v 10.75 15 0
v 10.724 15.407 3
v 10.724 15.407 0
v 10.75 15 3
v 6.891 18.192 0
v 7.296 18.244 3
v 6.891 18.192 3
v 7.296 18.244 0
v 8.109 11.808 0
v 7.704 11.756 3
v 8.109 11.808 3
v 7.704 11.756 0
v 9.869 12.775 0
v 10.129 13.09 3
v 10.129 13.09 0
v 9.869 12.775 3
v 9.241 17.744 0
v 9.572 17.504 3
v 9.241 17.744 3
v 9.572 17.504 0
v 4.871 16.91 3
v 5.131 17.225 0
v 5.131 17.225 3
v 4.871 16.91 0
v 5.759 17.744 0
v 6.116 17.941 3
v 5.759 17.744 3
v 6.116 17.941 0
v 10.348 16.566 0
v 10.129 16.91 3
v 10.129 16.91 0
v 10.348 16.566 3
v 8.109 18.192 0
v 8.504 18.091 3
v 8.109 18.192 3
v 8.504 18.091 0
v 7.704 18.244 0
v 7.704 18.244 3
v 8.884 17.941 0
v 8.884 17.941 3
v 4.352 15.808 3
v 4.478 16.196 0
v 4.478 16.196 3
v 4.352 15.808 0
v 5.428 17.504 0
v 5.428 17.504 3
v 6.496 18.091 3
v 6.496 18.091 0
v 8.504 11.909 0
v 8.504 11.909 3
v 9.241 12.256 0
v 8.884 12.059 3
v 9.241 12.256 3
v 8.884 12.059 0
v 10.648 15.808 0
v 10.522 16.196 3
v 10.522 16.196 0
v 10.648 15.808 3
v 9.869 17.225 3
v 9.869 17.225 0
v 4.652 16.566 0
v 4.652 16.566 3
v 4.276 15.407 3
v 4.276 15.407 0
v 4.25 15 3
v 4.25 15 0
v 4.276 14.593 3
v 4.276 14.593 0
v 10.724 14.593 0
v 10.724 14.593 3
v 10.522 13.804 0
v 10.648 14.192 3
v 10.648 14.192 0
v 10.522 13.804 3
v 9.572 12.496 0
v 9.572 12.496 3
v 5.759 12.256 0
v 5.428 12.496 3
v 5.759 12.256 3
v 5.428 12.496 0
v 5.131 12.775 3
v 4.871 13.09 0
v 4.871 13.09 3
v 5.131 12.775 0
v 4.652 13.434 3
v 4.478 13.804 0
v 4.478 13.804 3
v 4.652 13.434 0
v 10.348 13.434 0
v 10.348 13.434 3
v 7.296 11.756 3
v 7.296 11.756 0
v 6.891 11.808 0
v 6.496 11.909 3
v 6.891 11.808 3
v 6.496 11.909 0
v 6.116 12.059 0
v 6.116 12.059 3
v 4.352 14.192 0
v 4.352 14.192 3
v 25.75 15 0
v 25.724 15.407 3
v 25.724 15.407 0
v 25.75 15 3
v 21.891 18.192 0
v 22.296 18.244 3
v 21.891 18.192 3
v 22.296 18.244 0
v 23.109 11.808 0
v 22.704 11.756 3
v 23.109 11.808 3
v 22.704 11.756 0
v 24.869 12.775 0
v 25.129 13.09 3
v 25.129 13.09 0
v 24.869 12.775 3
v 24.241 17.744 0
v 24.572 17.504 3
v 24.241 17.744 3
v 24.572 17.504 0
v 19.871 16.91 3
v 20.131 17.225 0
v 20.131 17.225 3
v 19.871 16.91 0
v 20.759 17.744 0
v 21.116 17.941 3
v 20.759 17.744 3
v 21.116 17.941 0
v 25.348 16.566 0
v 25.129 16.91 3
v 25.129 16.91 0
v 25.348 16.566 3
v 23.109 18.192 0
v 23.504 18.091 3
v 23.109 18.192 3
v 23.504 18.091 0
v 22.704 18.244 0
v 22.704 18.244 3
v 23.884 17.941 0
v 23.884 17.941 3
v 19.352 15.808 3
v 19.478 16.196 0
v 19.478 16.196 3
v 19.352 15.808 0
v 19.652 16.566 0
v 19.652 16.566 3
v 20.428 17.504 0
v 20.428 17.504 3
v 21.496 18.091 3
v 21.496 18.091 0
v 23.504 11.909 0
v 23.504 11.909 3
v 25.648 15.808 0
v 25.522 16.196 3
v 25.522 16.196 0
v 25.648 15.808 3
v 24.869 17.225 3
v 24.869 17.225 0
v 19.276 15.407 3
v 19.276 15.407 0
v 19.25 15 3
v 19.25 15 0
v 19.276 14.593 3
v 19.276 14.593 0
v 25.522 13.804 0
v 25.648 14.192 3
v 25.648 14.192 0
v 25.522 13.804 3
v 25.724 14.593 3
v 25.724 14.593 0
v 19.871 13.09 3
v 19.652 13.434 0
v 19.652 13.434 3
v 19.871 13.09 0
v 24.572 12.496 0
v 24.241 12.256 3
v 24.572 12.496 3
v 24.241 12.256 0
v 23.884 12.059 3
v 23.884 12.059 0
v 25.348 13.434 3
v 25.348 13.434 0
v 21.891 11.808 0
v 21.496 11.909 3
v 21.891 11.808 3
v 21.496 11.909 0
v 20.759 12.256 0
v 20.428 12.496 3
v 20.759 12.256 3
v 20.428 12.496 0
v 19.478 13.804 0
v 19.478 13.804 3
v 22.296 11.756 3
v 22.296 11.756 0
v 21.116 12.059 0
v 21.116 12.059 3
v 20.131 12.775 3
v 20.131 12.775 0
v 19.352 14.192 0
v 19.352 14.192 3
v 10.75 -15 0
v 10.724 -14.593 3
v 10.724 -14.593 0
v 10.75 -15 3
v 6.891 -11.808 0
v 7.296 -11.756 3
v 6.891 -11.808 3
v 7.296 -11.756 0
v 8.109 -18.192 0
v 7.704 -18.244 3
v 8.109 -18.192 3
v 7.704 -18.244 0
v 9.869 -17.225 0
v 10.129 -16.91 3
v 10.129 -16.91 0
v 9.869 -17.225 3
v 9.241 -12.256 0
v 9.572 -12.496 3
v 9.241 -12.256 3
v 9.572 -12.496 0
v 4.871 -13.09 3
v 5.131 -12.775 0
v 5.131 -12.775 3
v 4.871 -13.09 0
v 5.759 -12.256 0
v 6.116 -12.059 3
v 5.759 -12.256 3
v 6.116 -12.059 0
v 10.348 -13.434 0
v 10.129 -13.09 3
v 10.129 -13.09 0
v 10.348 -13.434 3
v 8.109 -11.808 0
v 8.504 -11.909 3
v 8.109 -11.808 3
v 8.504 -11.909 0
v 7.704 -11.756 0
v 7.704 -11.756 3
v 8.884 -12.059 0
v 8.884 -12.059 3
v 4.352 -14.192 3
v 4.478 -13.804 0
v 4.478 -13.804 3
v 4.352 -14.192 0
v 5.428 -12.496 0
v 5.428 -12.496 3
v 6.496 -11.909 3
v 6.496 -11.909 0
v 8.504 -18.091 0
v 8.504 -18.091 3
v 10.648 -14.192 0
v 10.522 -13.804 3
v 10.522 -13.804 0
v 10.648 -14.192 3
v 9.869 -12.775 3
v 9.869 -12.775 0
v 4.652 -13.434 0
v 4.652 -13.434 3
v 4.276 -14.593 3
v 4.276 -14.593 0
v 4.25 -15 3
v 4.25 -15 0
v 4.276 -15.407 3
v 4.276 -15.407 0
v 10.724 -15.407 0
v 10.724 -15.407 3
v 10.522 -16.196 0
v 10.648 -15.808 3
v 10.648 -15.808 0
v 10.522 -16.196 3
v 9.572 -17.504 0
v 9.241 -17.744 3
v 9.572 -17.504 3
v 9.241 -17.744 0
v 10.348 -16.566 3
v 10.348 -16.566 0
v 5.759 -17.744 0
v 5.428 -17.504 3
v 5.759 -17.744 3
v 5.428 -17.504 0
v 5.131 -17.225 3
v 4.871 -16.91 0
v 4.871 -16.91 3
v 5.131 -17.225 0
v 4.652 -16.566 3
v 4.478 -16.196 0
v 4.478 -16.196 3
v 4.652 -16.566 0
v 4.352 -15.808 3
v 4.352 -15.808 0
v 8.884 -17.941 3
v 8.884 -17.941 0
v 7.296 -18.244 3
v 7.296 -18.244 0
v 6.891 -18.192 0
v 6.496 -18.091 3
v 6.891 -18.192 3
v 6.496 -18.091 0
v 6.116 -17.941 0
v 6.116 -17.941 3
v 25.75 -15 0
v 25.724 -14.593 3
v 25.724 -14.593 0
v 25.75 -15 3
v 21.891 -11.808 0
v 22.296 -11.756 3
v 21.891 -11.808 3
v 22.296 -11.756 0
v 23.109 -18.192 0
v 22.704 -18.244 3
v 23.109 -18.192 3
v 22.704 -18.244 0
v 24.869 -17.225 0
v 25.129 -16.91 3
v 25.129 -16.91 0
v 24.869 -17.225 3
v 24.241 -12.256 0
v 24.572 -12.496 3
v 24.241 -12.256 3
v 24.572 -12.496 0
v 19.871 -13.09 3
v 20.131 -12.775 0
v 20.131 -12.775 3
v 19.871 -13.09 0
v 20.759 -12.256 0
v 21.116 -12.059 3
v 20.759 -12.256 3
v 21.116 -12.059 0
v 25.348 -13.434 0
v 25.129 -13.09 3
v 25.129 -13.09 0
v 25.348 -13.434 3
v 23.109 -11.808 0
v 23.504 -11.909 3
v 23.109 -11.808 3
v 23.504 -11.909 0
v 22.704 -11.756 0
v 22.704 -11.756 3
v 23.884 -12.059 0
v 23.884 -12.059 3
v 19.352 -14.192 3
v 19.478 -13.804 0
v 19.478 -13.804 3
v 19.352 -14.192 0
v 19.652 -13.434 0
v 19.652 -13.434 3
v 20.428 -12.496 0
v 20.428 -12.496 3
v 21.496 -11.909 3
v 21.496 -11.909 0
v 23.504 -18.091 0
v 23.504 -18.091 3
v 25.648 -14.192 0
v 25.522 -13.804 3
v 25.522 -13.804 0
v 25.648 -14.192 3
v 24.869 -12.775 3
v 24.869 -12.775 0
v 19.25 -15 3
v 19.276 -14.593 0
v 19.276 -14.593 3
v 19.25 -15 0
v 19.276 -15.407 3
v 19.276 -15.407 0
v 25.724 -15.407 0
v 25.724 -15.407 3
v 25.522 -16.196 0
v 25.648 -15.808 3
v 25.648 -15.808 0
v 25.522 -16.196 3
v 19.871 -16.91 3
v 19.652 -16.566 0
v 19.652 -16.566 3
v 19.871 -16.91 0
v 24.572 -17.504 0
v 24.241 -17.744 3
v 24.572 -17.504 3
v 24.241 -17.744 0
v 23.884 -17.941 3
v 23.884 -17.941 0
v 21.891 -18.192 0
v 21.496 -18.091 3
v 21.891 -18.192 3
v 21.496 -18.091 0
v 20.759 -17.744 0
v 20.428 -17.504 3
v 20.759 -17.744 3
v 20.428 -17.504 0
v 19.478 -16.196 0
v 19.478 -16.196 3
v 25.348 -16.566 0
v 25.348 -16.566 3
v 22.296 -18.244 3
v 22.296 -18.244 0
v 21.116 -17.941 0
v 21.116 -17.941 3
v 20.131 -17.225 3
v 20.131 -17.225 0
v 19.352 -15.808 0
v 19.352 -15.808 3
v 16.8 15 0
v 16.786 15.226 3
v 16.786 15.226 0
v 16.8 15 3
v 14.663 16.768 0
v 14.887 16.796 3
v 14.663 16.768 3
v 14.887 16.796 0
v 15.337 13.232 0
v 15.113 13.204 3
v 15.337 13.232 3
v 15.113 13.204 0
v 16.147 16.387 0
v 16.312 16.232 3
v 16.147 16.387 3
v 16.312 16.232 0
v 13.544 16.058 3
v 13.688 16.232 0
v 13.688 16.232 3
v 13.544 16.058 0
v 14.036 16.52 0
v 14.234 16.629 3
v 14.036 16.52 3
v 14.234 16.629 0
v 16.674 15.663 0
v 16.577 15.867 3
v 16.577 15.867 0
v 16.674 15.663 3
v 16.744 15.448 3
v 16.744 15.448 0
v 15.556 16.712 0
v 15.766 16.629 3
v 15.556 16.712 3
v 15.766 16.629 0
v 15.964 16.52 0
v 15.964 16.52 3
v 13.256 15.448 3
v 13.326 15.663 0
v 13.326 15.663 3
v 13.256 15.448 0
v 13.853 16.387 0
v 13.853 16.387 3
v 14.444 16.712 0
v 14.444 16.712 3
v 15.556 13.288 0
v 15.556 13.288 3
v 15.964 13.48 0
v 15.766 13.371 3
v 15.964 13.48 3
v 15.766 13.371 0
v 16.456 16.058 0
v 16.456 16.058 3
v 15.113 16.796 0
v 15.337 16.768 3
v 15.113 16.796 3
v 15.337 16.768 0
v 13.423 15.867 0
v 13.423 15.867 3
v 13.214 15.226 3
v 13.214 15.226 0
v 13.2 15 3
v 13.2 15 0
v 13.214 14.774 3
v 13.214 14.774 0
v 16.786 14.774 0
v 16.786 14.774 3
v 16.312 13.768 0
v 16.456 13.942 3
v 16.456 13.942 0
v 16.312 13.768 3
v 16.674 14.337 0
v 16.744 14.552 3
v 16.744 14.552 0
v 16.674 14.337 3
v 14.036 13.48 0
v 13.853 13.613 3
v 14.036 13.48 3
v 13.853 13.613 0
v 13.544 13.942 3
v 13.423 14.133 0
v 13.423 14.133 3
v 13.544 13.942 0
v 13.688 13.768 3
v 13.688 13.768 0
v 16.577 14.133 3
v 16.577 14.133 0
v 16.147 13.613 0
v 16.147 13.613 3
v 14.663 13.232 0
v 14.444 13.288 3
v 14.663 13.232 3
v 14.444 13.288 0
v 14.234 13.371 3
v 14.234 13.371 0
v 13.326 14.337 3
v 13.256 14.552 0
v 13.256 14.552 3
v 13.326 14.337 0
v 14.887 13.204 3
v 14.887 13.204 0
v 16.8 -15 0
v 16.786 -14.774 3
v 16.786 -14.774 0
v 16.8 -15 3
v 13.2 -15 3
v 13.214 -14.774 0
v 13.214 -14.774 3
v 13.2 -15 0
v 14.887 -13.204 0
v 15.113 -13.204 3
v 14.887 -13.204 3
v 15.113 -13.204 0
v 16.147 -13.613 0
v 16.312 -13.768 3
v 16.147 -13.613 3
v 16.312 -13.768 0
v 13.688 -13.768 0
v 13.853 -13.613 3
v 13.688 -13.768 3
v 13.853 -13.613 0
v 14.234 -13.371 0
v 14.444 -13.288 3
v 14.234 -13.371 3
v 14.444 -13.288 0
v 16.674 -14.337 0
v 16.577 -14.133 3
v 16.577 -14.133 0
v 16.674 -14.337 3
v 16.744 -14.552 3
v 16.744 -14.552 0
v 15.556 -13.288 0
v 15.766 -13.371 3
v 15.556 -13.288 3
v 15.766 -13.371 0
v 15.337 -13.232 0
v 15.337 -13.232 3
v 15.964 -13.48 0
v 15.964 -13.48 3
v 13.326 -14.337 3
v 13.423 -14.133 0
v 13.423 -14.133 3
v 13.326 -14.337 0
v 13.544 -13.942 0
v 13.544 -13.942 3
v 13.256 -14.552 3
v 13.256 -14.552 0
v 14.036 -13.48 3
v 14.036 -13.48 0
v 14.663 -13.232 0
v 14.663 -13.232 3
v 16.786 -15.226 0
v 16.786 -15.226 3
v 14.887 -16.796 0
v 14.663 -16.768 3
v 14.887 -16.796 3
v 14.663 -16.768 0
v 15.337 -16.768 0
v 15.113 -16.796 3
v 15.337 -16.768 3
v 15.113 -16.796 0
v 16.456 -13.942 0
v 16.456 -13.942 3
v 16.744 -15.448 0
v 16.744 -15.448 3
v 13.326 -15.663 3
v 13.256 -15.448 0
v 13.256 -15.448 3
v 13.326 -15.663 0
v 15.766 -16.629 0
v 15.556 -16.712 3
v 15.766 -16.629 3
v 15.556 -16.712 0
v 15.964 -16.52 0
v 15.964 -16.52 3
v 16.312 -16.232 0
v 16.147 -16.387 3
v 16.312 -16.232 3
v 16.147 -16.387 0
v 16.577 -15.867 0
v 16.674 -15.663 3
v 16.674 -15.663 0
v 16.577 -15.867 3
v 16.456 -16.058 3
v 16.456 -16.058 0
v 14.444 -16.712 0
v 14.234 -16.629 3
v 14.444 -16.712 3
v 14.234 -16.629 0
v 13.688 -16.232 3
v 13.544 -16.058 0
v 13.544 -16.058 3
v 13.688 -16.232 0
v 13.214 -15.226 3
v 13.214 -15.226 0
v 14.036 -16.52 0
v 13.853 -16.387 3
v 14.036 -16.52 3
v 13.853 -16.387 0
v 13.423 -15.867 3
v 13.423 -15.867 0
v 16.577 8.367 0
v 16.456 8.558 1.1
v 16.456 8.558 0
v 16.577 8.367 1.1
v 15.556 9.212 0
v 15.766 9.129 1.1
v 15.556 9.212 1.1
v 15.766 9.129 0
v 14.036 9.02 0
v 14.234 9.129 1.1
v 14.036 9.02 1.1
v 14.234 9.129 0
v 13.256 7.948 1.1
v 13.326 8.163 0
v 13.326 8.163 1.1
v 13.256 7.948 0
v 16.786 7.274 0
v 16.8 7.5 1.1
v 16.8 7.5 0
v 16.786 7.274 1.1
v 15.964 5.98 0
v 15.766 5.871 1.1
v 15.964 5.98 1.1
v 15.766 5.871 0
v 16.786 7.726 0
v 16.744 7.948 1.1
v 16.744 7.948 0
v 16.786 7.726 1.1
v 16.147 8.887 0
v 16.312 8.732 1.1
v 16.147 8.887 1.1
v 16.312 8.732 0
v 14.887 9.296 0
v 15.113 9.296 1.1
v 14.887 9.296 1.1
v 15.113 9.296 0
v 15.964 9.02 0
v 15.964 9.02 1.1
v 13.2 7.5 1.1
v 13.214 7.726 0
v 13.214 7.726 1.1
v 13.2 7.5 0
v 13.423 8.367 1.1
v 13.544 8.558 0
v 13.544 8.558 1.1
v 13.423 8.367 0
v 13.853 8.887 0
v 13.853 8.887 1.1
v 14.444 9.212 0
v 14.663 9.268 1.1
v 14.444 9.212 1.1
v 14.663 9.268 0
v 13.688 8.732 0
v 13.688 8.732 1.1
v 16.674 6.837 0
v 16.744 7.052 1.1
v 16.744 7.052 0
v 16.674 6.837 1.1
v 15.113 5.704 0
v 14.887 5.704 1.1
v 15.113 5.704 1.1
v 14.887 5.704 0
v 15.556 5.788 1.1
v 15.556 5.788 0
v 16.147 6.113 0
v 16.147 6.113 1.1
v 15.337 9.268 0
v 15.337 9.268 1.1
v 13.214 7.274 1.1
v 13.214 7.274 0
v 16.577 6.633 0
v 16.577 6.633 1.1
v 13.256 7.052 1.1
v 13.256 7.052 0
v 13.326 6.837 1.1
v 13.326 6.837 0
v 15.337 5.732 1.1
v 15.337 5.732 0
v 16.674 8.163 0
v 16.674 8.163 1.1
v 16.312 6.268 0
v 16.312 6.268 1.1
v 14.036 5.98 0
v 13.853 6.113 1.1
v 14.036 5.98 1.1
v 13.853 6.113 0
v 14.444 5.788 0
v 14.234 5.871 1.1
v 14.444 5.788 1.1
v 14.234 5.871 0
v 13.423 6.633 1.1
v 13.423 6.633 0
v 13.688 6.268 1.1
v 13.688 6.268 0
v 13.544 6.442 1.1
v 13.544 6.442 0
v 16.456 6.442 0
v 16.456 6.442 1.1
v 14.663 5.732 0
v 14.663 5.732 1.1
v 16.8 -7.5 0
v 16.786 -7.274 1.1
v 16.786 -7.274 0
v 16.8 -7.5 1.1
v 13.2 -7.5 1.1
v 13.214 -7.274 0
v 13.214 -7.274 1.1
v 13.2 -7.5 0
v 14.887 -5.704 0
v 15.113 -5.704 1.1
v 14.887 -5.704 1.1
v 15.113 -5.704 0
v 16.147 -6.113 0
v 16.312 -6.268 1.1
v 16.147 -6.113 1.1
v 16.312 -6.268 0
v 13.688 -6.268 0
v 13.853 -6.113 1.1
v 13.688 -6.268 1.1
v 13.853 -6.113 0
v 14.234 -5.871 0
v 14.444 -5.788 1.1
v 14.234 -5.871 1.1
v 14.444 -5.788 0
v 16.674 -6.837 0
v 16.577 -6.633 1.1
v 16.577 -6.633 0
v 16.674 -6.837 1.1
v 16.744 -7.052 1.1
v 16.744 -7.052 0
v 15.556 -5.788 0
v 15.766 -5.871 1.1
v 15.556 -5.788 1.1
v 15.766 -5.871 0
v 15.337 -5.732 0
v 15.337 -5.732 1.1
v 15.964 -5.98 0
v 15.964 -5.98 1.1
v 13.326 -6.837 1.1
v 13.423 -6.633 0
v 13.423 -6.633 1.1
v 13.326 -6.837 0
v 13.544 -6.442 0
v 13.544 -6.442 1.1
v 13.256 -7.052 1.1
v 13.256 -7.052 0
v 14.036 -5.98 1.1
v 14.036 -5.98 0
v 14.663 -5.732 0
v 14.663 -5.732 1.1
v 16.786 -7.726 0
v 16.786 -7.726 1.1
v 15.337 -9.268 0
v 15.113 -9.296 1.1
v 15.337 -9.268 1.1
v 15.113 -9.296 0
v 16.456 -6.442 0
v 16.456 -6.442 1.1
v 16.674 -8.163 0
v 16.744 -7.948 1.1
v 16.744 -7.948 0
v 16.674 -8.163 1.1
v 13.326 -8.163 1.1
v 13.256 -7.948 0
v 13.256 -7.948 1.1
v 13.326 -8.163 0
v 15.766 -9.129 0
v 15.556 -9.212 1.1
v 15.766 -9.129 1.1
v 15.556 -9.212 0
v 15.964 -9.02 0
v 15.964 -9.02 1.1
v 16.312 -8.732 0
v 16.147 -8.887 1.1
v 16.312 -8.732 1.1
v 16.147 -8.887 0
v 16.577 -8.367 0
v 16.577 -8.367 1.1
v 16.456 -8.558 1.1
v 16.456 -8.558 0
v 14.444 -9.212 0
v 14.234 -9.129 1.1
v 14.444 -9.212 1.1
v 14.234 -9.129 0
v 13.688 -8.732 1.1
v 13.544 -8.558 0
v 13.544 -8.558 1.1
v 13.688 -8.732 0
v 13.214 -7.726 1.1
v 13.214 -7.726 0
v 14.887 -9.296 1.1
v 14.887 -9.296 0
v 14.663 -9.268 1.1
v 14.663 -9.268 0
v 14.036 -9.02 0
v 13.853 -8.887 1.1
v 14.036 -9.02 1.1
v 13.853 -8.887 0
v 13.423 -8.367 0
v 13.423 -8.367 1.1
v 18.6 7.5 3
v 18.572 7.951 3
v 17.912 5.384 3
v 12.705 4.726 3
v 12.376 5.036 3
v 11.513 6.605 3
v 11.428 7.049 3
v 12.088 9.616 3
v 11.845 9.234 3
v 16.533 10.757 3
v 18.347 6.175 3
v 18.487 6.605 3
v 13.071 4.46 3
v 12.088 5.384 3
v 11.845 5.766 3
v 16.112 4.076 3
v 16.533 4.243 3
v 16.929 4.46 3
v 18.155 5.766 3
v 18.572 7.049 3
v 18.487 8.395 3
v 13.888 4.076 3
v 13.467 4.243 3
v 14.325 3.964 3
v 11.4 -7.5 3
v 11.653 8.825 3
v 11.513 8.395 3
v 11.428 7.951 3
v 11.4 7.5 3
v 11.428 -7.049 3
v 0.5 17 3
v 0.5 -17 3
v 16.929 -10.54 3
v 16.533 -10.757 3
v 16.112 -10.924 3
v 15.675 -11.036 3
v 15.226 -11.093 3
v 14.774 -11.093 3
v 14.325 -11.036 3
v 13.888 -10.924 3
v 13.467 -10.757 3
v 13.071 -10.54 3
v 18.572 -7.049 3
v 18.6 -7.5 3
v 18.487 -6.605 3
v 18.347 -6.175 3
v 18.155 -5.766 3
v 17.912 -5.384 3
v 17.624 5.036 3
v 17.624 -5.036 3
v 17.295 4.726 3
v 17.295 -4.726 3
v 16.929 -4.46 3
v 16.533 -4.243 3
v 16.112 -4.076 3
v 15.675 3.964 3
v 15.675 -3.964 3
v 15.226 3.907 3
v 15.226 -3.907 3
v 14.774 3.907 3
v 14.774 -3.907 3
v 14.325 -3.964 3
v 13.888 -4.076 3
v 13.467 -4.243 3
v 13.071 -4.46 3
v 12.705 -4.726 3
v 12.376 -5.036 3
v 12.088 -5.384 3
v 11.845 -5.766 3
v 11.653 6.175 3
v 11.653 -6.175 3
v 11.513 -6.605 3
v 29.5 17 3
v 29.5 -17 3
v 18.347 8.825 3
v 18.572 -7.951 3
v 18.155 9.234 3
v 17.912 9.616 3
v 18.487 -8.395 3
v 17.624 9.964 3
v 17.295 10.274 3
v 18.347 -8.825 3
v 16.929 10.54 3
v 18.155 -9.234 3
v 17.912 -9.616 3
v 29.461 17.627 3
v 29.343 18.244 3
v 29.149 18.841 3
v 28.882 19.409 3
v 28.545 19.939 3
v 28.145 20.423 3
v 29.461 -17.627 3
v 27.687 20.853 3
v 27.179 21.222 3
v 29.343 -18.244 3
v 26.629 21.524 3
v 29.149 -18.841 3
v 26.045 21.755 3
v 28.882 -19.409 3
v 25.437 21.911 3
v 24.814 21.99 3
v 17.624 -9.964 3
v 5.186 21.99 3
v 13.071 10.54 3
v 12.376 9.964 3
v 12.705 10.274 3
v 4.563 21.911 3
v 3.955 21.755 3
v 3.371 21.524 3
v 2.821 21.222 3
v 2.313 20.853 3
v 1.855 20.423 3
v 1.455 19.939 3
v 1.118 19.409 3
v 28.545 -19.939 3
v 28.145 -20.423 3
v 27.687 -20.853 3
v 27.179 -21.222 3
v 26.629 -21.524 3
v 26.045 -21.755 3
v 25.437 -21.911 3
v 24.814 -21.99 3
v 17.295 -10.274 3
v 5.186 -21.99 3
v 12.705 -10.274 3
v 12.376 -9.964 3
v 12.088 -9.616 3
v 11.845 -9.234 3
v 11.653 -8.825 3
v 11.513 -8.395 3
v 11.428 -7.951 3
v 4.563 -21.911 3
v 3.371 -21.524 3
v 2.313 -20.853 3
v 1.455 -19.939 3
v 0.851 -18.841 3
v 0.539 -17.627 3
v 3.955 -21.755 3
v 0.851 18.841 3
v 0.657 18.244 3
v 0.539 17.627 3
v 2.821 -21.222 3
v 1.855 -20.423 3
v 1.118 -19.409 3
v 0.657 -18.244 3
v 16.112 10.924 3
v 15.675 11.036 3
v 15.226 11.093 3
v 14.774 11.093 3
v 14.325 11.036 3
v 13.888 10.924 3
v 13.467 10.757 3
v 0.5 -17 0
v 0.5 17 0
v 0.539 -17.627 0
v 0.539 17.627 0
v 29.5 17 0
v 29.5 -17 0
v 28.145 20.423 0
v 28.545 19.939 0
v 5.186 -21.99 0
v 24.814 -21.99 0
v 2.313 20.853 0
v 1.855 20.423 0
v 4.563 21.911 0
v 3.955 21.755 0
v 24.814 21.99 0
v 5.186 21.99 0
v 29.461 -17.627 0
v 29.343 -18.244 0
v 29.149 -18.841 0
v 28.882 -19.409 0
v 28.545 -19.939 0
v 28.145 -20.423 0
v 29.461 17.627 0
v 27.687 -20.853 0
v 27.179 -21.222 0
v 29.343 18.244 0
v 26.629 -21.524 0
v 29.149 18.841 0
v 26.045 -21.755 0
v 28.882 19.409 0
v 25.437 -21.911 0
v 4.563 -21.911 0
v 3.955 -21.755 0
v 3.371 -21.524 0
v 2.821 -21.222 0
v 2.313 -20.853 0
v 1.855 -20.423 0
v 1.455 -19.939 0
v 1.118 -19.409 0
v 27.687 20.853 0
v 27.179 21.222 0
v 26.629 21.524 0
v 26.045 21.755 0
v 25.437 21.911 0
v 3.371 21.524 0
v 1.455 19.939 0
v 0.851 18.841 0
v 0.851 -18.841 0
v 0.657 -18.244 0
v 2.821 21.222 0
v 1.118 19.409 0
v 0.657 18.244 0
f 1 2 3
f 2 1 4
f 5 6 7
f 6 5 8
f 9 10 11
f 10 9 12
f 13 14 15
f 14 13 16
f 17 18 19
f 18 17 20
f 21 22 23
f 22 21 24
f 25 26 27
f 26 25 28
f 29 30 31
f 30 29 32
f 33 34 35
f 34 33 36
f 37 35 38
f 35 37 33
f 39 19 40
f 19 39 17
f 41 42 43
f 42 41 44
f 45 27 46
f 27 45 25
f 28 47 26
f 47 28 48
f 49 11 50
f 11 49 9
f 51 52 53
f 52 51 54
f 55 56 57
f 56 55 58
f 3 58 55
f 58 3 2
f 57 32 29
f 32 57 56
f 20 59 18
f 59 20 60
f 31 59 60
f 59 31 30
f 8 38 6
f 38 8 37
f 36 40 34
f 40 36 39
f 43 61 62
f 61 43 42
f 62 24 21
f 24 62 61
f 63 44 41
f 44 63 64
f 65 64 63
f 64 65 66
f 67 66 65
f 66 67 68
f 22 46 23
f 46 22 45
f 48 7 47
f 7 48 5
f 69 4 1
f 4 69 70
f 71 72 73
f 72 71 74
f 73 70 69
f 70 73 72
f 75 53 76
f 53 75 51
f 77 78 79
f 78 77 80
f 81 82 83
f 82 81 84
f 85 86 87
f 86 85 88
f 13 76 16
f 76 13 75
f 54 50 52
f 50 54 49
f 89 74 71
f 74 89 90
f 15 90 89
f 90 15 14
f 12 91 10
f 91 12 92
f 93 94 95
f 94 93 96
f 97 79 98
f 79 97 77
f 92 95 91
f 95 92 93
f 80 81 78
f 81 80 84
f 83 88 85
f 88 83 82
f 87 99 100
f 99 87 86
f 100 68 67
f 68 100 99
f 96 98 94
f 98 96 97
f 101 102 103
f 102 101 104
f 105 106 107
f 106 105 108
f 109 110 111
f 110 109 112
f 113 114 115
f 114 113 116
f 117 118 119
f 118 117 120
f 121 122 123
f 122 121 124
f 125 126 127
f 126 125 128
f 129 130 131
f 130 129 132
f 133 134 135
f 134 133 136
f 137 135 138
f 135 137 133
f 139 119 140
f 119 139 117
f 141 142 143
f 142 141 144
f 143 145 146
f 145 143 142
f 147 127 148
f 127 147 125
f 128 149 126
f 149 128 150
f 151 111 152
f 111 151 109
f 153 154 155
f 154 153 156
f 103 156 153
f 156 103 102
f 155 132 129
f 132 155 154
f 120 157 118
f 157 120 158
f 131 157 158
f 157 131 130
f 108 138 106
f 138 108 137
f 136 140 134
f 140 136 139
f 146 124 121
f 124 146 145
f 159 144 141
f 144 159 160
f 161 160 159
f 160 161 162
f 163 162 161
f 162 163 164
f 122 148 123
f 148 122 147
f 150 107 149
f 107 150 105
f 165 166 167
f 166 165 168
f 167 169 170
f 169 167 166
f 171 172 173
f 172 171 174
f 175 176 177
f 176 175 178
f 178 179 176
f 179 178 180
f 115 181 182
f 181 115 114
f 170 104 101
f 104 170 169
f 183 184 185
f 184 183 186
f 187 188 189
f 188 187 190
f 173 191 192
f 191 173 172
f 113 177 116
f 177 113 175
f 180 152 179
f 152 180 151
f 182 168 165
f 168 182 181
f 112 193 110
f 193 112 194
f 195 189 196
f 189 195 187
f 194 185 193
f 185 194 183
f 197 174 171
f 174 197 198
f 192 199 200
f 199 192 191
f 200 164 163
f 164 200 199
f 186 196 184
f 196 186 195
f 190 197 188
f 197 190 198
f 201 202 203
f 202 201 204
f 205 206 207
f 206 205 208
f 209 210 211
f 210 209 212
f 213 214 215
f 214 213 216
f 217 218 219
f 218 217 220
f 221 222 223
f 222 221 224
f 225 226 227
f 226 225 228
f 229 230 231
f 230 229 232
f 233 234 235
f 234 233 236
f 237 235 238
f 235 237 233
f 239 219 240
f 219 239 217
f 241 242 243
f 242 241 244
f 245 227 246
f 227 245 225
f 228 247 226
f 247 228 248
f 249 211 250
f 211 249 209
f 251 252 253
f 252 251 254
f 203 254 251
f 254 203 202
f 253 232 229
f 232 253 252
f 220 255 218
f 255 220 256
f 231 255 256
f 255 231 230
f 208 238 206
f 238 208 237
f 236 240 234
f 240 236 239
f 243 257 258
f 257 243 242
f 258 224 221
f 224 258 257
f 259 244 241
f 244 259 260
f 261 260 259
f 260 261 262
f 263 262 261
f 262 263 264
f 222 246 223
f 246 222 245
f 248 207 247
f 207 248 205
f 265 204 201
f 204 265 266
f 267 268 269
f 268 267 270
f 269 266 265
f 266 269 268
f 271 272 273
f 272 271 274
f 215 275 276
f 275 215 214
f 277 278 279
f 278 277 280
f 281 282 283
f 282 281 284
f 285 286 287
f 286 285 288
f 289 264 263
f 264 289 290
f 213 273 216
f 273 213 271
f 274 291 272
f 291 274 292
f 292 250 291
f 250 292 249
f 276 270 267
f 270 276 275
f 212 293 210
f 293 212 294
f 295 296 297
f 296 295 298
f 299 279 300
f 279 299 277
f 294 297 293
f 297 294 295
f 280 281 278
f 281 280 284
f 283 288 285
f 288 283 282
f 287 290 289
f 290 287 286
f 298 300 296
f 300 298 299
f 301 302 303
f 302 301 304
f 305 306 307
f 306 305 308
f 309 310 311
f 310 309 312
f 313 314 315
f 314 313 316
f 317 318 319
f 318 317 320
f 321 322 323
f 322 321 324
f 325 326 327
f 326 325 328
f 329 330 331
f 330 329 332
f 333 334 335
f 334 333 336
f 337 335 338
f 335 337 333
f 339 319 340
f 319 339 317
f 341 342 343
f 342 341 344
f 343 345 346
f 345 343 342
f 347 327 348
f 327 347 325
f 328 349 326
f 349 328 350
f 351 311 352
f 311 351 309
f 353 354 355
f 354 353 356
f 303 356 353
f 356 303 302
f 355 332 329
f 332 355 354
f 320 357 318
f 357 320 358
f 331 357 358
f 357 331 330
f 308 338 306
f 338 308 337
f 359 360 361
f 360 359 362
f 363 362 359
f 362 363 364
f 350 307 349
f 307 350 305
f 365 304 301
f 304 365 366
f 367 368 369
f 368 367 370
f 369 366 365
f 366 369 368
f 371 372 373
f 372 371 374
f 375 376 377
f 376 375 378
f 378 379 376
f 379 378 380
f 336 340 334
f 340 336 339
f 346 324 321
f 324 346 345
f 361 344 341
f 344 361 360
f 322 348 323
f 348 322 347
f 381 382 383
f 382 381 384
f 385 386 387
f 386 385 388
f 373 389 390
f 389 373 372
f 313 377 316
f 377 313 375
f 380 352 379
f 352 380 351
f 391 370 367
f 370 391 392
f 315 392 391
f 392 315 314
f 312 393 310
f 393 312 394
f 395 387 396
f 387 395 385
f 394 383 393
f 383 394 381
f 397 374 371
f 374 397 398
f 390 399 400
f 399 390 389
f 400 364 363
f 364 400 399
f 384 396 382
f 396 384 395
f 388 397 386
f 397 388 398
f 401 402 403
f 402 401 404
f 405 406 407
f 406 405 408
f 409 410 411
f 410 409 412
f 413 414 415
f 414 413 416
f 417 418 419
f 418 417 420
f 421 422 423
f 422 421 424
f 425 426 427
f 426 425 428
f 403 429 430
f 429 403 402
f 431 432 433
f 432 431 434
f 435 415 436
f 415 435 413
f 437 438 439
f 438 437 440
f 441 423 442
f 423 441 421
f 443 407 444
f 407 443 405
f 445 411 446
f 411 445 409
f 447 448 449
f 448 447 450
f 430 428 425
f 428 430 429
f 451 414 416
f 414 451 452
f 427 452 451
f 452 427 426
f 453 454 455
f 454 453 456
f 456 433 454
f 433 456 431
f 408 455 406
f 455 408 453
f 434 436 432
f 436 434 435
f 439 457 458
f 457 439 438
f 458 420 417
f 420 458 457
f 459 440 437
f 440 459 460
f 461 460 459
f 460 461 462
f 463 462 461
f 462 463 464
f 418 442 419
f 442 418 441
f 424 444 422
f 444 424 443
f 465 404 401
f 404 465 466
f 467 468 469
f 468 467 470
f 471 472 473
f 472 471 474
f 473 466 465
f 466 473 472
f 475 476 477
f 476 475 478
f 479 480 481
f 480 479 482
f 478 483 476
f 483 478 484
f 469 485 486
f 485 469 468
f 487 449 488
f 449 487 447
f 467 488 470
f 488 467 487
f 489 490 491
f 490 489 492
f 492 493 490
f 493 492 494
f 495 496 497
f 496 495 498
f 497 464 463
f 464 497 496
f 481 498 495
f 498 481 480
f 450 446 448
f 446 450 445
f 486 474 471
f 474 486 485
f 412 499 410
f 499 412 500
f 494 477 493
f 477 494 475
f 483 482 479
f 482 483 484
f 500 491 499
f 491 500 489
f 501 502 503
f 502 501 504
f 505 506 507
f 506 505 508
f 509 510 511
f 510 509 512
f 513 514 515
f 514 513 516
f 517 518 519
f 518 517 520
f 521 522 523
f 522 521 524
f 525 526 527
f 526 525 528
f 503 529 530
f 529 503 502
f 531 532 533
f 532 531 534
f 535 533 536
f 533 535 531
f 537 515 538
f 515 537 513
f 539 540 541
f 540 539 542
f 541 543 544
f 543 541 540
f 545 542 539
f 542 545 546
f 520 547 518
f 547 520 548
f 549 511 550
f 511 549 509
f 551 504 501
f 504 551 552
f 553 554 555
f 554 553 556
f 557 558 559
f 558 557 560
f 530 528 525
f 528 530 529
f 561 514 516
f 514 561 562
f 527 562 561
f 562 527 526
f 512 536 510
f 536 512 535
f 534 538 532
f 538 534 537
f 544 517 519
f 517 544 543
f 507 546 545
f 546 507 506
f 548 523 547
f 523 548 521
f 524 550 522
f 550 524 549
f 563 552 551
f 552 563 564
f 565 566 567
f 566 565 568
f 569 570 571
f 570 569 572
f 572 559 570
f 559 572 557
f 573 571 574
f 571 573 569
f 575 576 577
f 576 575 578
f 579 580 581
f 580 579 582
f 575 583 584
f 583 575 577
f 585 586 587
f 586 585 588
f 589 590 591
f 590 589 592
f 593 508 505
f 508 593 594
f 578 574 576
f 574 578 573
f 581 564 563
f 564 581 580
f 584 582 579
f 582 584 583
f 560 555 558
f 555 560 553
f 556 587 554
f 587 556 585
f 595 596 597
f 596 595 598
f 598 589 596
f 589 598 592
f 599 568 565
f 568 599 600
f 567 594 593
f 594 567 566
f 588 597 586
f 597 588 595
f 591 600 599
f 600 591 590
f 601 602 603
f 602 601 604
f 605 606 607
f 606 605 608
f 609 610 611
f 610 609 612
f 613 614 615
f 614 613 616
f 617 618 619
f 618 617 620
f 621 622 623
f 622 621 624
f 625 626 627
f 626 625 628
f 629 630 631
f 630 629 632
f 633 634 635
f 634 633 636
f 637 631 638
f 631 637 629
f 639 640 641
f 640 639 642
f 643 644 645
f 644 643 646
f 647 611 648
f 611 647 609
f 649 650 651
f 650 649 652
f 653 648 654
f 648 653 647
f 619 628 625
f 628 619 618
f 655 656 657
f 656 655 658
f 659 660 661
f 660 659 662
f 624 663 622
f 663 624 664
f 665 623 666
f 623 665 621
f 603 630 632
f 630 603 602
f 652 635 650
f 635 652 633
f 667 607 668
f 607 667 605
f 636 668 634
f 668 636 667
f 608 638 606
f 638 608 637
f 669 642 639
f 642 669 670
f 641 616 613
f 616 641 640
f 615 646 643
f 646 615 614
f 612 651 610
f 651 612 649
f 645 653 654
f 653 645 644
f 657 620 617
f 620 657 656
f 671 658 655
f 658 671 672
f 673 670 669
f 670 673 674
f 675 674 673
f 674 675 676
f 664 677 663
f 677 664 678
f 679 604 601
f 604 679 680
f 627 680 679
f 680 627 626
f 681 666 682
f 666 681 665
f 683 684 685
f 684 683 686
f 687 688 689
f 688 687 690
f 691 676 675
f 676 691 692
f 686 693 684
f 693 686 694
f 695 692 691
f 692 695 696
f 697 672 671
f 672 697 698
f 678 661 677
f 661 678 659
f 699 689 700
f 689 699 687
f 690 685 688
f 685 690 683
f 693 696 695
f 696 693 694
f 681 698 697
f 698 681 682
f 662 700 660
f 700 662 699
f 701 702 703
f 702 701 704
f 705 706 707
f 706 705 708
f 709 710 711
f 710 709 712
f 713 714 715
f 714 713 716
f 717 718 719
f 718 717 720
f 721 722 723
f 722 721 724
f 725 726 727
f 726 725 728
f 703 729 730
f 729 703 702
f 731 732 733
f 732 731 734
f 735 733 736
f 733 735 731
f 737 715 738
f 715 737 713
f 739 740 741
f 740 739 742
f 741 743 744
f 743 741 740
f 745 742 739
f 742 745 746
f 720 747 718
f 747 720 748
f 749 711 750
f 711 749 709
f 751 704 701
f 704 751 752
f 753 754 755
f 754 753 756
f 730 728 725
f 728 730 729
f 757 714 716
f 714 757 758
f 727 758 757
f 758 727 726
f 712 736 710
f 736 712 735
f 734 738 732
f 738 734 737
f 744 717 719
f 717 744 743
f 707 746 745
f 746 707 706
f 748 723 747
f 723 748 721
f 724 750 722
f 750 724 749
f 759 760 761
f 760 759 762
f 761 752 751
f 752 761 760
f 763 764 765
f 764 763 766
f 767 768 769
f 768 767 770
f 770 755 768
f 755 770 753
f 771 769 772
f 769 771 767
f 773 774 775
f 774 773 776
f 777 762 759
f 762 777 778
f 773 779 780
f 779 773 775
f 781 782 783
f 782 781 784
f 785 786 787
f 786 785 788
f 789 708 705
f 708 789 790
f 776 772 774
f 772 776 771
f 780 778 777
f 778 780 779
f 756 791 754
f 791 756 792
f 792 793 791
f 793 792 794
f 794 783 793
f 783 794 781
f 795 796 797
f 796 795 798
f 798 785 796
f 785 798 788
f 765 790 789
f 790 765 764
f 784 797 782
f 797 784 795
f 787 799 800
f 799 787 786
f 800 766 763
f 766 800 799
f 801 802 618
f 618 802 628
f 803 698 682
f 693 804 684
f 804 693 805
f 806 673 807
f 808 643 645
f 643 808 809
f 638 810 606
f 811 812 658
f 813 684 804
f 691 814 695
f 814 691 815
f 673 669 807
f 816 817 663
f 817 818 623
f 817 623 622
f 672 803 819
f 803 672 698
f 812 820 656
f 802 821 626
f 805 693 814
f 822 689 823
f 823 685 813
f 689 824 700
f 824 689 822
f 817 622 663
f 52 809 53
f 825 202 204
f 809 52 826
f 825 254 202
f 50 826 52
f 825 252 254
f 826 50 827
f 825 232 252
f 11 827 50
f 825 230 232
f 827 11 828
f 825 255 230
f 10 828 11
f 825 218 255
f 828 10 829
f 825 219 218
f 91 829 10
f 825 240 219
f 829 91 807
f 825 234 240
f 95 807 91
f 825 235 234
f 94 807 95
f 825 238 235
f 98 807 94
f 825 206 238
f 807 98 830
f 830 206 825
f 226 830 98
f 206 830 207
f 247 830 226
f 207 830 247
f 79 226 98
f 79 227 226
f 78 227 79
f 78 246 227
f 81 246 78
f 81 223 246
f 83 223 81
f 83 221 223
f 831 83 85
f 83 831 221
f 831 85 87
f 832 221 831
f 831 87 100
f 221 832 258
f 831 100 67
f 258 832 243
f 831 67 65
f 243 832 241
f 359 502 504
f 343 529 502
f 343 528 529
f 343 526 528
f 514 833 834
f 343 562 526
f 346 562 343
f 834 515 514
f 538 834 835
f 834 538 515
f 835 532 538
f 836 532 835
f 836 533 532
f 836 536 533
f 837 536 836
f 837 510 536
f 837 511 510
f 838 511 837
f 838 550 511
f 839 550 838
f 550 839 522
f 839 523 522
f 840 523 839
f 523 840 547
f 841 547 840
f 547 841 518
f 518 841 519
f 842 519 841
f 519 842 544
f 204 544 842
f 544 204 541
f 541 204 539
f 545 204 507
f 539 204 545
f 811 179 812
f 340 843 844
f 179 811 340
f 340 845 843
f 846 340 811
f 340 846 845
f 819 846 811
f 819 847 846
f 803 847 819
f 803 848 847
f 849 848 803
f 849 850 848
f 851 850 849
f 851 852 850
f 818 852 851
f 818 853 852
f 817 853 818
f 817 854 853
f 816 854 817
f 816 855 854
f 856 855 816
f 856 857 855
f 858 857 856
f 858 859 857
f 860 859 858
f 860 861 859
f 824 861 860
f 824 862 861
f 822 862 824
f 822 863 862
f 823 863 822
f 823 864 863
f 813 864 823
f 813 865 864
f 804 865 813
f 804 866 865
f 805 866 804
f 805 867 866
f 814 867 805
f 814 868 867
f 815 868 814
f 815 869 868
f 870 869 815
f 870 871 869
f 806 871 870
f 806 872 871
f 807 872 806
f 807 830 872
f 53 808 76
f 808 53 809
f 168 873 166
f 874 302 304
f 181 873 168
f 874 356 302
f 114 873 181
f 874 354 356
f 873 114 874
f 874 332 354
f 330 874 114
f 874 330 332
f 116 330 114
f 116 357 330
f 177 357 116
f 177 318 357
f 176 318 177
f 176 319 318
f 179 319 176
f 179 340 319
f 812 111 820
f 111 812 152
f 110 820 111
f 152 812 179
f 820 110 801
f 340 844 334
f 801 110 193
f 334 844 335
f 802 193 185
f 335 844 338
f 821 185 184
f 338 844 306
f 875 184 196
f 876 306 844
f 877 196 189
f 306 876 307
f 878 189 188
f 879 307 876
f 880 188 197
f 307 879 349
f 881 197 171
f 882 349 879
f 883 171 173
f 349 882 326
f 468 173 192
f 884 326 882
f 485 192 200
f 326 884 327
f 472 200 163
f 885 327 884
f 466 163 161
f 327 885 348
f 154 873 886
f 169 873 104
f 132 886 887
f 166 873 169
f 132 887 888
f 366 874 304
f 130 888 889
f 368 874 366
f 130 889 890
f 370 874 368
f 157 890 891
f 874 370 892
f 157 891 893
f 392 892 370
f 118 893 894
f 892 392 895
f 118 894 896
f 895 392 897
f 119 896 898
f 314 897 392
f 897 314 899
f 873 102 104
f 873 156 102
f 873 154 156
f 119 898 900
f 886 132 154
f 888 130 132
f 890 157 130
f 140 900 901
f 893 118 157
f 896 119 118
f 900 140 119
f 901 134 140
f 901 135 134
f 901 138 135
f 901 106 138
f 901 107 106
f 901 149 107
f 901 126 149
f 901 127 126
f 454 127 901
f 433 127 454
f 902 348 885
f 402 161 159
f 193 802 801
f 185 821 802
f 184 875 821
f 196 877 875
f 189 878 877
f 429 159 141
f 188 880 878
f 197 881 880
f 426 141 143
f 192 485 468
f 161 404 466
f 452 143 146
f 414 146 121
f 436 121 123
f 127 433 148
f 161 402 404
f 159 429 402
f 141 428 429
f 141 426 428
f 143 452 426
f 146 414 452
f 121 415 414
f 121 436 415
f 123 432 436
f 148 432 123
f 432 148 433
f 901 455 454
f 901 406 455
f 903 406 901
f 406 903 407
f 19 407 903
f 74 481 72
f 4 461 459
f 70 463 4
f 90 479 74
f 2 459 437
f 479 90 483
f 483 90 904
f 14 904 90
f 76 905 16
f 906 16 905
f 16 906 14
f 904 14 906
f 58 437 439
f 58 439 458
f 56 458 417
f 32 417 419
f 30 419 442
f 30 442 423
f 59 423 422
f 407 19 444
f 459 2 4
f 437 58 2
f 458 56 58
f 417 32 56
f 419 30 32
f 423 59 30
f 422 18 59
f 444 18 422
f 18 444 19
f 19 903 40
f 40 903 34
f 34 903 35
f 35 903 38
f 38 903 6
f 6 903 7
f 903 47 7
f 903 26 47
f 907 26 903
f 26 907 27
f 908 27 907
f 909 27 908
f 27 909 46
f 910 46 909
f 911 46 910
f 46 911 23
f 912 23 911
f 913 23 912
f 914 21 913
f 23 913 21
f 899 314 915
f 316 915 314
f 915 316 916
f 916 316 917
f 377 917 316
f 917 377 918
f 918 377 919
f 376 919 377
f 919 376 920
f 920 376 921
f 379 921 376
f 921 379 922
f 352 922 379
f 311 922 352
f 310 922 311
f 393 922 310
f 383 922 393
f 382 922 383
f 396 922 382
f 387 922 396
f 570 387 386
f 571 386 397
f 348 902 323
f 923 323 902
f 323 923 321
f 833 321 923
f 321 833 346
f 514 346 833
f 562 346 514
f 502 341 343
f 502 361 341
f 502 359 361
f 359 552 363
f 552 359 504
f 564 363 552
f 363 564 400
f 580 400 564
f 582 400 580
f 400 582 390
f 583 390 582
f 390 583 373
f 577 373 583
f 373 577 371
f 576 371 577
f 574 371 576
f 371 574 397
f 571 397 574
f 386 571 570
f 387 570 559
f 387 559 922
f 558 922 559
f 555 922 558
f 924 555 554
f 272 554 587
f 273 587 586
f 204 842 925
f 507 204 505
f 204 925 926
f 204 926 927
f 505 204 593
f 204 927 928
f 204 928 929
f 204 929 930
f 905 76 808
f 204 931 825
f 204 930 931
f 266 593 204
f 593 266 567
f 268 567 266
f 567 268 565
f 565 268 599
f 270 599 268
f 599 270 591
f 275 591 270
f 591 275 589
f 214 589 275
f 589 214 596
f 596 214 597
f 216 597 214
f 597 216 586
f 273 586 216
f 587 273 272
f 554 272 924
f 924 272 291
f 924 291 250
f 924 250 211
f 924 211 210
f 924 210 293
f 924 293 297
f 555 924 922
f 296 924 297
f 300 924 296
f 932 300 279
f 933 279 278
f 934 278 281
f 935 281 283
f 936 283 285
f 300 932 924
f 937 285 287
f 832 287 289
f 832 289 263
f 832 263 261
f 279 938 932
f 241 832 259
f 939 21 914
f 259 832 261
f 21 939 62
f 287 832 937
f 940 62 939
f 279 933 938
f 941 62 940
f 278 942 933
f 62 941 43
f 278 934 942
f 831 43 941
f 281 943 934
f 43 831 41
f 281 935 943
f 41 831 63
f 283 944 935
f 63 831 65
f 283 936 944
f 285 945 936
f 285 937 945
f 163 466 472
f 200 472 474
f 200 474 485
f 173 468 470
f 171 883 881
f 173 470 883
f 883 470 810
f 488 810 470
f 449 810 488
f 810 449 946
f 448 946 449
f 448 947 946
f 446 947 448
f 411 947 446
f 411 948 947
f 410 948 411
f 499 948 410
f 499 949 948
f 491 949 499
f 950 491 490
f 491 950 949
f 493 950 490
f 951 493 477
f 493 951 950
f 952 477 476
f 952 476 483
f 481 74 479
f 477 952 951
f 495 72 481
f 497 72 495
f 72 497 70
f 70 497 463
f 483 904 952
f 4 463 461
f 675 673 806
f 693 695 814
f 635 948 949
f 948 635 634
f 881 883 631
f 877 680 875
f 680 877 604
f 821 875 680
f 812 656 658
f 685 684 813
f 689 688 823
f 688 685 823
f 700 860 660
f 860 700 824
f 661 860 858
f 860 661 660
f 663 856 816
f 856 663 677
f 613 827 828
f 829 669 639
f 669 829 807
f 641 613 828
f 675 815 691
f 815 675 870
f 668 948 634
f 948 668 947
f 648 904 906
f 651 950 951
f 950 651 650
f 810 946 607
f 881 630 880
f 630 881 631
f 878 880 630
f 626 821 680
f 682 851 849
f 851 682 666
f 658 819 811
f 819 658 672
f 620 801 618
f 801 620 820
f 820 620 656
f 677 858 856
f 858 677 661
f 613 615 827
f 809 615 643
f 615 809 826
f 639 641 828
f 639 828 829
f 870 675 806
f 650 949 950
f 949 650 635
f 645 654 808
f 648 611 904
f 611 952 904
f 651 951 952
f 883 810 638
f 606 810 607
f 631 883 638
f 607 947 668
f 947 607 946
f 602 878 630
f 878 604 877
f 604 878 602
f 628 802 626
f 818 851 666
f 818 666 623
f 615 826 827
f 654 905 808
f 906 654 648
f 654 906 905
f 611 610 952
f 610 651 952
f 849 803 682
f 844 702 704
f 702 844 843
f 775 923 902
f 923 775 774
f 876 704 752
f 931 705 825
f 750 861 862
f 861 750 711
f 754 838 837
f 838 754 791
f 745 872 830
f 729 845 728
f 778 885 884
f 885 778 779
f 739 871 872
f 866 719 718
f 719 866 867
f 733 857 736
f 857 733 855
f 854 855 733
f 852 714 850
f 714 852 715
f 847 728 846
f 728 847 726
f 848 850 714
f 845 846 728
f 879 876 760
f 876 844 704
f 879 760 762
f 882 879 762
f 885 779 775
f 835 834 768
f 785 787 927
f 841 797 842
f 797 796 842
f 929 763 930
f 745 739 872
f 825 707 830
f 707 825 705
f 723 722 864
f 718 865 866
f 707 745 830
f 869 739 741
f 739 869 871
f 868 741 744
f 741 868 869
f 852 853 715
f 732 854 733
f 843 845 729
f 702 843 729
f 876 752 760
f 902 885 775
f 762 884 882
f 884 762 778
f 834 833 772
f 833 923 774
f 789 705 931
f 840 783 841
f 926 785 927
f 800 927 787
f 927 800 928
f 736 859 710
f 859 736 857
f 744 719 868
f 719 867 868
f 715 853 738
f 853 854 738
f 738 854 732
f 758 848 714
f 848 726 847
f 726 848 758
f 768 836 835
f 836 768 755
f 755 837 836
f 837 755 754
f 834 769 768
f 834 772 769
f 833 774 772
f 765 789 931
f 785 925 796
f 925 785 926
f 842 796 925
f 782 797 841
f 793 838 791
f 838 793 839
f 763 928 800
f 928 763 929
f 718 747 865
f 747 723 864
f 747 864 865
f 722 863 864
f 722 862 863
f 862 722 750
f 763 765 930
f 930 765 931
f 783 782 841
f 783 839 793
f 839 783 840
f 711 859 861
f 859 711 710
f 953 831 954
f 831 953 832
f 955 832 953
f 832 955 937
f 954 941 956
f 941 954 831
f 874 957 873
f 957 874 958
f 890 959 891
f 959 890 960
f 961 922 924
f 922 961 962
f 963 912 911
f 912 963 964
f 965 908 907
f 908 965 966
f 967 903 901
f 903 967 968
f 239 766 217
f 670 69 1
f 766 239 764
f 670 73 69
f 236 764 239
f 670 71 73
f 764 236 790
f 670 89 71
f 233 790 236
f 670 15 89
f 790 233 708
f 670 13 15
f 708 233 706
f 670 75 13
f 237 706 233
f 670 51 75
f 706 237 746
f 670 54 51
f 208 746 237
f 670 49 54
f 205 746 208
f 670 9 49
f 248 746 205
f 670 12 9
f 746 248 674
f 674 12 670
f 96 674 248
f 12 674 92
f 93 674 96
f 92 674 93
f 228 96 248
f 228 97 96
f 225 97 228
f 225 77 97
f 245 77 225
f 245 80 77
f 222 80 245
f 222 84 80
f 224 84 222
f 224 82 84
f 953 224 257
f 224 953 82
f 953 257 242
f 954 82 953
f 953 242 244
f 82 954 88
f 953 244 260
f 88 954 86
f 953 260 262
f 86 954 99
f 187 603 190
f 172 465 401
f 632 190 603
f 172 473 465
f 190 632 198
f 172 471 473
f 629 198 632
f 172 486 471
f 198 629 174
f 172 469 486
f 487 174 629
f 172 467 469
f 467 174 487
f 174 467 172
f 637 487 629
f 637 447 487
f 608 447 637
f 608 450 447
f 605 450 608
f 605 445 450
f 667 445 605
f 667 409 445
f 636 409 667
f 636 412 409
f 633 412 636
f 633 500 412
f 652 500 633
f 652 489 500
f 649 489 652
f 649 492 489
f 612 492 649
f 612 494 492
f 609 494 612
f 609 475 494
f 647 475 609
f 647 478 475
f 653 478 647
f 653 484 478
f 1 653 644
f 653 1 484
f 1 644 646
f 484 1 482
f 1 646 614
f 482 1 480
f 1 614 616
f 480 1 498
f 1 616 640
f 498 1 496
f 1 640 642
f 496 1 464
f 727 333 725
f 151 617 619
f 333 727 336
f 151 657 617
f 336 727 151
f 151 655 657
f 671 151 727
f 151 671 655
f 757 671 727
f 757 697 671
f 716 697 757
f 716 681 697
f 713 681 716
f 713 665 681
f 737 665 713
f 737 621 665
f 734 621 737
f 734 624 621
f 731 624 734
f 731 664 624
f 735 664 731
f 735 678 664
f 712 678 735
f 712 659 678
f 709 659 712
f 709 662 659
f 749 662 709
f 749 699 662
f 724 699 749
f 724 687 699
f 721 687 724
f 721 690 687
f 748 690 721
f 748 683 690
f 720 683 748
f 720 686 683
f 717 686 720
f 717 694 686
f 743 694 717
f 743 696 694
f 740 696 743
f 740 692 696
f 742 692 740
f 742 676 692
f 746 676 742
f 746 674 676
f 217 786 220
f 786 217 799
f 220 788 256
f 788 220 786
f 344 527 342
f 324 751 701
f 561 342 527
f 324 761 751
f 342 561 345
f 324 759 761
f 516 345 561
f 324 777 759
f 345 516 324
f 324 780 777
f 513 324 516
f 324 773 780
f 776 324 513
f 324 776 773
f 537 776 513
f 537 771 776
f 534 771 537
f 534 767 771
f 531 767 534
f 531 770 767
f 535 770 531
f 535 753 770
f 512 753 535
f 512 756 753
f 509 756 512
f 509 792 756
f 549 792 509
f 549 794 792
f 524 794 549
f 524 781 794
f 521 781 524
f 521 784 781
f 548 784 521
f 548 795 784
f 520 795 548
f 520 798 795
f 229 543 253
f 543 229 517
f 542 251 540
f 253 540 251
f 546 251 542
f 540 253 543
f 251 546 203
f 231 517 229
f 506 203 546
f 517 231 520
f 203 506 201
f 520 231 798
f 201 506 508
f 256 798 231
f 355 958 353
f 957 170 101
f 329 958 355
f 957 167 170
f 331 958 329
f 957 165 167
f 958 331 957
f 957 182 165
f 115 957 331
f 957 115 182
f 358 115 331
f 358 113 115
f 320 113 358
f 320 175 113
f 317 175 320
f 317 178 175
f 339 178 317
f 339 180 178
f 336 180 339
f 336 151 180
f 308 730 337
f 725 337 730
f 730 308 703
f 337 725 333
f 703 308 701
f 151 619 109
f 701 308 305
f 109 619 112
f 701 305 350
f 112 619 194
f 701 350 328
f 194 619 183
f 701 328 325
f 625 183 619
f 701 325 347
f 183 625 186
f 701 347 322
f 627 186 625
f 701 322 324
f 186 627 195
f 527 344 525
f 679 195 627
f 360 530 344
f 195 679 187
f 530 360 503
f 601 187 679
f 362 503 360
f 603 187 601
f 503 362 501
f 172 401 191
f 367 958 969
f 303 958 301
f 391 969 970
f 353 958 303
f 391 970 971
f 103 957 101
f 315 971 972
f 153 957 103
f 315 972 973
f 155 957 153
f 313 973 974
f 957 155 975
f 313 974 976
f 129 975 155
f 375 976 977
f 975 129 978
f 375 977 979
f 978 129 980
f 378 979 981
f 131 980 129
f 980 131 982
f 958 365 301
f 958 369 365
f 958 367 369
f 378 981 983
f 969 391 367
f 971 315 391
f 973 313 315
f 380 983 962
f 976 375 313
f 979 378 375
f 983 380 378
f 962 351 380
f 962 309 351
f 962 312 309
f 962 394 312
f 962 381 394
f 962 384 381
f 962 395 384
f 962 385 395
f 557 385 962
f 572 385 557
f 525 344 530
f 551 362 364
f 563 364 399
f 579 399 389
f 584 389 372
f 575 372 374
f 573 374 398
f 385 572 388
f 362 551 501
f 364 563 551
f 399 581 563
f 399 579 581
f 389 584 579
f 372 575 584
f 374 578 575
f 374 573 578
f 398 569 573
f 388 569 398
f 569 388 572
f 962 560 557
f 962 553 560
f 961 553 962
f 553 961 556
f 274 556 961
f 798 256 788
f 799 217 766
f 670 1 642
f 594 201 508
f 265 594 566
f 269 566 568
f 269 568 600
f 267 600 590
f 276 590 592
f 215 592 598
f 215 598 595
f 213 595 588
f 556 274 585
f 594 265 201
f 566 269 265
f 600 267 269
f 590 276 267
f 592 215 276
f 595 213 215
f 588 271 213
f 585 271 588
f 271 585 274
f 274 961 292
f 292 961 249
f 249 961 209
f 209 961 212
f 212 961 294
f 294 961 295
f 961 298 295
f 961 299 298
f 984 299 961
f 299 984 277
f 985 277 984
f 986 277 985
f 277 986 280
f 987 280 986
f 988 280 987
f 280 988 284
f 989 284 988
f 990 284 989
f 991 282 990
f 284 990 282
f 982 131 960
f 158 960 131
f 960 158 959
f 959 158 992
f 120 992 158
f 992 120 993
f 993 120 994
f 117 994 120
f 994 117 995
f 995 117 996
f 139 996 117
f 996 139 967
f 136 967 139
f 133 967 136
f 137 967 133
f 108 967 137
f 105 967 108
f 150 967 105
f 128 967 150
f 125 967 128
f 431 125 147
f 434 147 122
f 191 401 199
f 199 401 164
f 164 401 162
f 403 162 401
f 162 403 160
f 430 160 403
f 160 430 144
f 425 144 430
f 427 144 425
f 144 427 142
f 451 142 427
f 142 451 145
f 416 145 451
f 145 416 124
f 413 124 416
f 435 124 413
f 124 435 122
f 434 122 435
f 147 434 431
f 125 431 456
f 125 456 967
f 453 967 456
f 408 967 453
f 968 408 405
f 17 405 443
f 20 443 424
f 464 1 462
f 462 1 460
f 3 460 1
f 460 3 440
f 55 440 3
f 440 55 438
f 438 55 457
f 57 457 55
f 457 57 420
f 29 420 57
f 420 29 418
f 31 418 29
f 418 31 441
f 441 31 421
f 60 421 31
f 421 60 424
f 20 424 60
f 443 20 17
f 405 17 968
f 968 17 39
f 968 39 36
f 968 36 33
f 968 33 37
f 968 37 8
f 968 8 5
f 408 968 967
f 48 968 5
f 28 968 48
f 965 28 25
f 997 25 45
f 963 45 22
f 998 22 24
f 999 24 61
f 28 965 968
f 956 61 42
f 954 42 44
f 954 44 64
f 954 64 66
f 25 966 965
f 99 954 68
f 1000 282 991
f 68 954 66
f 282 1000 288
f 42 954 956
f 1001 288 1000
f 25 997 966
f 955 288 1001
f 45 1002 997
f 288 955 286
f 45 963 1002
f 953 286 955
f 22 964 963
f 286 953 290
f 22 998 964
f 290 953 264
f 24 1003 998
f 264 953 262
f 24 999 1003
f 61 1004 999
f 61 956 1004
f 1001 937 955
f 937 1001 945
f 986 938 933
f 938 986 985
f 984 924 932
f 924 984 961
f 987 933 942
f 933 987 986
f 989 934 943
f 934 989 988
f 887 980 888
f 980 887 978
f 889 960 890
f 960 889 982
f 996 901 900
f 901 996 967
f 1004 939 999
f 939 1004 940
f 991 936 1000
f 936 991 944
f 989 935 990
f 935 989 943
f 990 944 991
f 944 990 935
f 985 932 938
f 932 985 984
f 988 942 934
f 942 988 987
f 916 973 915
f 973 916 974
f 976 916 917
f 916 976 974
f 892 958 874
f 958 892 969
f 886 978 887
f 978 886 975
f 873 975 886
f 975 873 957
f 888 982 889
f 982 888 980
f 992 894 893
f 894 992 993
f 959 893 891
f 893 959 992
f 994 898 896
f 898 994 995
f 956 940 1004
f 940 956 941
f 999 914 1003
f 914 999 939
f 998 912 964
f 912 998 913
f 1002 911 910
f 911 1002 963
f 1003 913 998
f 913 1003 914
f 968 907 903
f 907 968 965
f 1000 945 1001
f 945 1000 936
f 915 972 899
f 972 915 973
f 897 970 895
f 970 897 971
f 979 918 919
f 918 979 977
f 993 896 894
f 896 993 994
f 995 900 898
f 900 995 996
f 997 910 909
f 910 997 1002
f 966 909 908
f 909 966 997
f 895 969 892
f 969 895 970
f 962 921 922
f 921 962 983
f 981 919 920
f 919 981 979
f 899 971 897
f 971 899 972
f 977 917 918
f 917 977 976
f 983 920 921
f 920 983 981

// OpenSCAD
$fn = 50;


difference() {
	union() {
		translate(v = [15.0000000000, 0, 0]) {
			rotate(a = [0, 0, 0]) {
				hull() {
					translate(v = [-9.5000000000, 17.0000000000, 0]) {
						rotate(a = [0, 0, 0]) {
							translate(v = [0, 0, 0]) {
								rotate(a = [0, 0, 0]) {
									cylinder(h = 3, r = 5);
								}
							}
						}
					}
					translate(v = [9.5000000000, 17.0000000000, 0]) {
						rotate(a = [0, 0, 0]) {
							translate(v = [0, 0, 0]) {
								rotate(a = [0, 0, 0]) {
									cylinder(h = 3, r = 5);
								}
							}
						}
					}
					translate(v = [-9.5000000000, -17.0000000000, 0]) {
						rotate(a = [0, 0, 0]) {
							translate(v = [0, 0, 0]) {
								rotate(a = [0, 0, 0]) {
									cylinder(h = 3, r = 5);
								}
							}
						}
					}
					translate(v = [9.5000000000, -17.0000000000, 0]) {
						rotate(a = [0, 0, 0]) {
							translate(v = [0, 0, 0]) {
								rotate(a = [0, 0, 0]) {
									cylinder(h = 3, r = 5);
								}
							}
						}
					}
				}
			}
		}
	}
	union() {
		translate(v = [7.5000000000, 15.0000000000, -125.0000000000]) {
			rotate(a = [0, 0, 0]) {
				cylinder(h = 250, r = 3.2500000000);
			}
		}
		translate(v = [22.5000000000, 15.0000000000, -125.0000000000]) {
			rotate(a = [0, 0, 0]) {
				cylinder(h = 250, r = 3.2500000000);
			}
		}
		translate(v = [7.5000000000, -15.0000000000, -125.0000000000]) {
			rotate(a = [0, 0, 0]) {
				cylinder(h = 250, r = 3.2500000000);
			}
		}
		translate(v = [22.5000000000, -15.0000000000, -125.0000000000]) {
			rotate(a = [0, 0, 0]) {
				cylinder(h = 250, r = 3.2500000000);
			}
		}
		translate(v = [7.5000000000, 15.0000000000, -125.0000000000]) {
			rotate(a = [0, 0, 0]) {
				cylinder(h = 250, r = 1.8000000000);
			}
		}
		translate(v = [15.0000000000, 15.0000000000, -125.0000000000]) {
			rotate(a = [0, 0, 0]) {
				cylinder(h = 250, r = 1.8000000000);
			}
		}
		translate(v = [22.5000000000, 15.0000000000, -125.0000000000]) {
			rotate(a = [0, 0, 0]) {
				cylinder(h = 250, r = 1.8000000000);
			}
		}
		translate(v = [7.5000000000, -15.0000000000, -125.0000000000]) {
			rotate(a = [0, 0, 0]) {
				cylinder(h = 250, r = 1.8000000000);
			}
		}
		translate(v = [15.0000000000, -15.0000000000, -125.0000000000]) {
			rotate(a = [0, 0, 0]) {
				cylinder(h = 250, r = 1.8000000000);
			}
		}
		translate(v = [22.5000000000, -15.0000000000, -125.0000000000]) {
			rotate(a = [0, 0, 0]) {
				cylinder(h = 250, r = 1.8000000000);
			}
		}
		translate(v = [15, 7.5000000000, -125.0000000000]) {
			rotate(a = [0, 0, 0]) {
				cylinder(h = 250, r = 1.8000000000);
			}
		}
		translate(v = [15, -7.5000000000, -125.0000000000]) {
			rotate(a = [0, 0, 0]) {
				cylinder(h = 250, r = 1.8000000000);
			}
		}
		translate(v = [15, 7.5000000000, 1.1000000000]) {
			rotate(a = [0, 0, 0]) {
				cylinder(h = 1.9000000000, r1 = 1.8000000000, r2 = 3.6000000000);
			}
		}
		translate(v = [15, 7.5000000000, -222.0000000000]) {
			rotate(a = [0, 0, 0]) {
				cylinder(h = 250, r = 1.8000000000);
			}
		}
		translate(v = [15, -7.5000000000, 1.1000000000]) {
			rotate(a = [0, 0, 0]) {
				cylinder(h = 1.9000000000, r1 = 1.8000000000, r2 = 3.6000000000);
			}
		}
		translate(v = [15, -7.5000000000, -222.0000000000]) {
			rotate(a = [0, 0, 0]) {
				cylinder(h = 250, r = 1.8000000000);
			}
		}
	}
}
